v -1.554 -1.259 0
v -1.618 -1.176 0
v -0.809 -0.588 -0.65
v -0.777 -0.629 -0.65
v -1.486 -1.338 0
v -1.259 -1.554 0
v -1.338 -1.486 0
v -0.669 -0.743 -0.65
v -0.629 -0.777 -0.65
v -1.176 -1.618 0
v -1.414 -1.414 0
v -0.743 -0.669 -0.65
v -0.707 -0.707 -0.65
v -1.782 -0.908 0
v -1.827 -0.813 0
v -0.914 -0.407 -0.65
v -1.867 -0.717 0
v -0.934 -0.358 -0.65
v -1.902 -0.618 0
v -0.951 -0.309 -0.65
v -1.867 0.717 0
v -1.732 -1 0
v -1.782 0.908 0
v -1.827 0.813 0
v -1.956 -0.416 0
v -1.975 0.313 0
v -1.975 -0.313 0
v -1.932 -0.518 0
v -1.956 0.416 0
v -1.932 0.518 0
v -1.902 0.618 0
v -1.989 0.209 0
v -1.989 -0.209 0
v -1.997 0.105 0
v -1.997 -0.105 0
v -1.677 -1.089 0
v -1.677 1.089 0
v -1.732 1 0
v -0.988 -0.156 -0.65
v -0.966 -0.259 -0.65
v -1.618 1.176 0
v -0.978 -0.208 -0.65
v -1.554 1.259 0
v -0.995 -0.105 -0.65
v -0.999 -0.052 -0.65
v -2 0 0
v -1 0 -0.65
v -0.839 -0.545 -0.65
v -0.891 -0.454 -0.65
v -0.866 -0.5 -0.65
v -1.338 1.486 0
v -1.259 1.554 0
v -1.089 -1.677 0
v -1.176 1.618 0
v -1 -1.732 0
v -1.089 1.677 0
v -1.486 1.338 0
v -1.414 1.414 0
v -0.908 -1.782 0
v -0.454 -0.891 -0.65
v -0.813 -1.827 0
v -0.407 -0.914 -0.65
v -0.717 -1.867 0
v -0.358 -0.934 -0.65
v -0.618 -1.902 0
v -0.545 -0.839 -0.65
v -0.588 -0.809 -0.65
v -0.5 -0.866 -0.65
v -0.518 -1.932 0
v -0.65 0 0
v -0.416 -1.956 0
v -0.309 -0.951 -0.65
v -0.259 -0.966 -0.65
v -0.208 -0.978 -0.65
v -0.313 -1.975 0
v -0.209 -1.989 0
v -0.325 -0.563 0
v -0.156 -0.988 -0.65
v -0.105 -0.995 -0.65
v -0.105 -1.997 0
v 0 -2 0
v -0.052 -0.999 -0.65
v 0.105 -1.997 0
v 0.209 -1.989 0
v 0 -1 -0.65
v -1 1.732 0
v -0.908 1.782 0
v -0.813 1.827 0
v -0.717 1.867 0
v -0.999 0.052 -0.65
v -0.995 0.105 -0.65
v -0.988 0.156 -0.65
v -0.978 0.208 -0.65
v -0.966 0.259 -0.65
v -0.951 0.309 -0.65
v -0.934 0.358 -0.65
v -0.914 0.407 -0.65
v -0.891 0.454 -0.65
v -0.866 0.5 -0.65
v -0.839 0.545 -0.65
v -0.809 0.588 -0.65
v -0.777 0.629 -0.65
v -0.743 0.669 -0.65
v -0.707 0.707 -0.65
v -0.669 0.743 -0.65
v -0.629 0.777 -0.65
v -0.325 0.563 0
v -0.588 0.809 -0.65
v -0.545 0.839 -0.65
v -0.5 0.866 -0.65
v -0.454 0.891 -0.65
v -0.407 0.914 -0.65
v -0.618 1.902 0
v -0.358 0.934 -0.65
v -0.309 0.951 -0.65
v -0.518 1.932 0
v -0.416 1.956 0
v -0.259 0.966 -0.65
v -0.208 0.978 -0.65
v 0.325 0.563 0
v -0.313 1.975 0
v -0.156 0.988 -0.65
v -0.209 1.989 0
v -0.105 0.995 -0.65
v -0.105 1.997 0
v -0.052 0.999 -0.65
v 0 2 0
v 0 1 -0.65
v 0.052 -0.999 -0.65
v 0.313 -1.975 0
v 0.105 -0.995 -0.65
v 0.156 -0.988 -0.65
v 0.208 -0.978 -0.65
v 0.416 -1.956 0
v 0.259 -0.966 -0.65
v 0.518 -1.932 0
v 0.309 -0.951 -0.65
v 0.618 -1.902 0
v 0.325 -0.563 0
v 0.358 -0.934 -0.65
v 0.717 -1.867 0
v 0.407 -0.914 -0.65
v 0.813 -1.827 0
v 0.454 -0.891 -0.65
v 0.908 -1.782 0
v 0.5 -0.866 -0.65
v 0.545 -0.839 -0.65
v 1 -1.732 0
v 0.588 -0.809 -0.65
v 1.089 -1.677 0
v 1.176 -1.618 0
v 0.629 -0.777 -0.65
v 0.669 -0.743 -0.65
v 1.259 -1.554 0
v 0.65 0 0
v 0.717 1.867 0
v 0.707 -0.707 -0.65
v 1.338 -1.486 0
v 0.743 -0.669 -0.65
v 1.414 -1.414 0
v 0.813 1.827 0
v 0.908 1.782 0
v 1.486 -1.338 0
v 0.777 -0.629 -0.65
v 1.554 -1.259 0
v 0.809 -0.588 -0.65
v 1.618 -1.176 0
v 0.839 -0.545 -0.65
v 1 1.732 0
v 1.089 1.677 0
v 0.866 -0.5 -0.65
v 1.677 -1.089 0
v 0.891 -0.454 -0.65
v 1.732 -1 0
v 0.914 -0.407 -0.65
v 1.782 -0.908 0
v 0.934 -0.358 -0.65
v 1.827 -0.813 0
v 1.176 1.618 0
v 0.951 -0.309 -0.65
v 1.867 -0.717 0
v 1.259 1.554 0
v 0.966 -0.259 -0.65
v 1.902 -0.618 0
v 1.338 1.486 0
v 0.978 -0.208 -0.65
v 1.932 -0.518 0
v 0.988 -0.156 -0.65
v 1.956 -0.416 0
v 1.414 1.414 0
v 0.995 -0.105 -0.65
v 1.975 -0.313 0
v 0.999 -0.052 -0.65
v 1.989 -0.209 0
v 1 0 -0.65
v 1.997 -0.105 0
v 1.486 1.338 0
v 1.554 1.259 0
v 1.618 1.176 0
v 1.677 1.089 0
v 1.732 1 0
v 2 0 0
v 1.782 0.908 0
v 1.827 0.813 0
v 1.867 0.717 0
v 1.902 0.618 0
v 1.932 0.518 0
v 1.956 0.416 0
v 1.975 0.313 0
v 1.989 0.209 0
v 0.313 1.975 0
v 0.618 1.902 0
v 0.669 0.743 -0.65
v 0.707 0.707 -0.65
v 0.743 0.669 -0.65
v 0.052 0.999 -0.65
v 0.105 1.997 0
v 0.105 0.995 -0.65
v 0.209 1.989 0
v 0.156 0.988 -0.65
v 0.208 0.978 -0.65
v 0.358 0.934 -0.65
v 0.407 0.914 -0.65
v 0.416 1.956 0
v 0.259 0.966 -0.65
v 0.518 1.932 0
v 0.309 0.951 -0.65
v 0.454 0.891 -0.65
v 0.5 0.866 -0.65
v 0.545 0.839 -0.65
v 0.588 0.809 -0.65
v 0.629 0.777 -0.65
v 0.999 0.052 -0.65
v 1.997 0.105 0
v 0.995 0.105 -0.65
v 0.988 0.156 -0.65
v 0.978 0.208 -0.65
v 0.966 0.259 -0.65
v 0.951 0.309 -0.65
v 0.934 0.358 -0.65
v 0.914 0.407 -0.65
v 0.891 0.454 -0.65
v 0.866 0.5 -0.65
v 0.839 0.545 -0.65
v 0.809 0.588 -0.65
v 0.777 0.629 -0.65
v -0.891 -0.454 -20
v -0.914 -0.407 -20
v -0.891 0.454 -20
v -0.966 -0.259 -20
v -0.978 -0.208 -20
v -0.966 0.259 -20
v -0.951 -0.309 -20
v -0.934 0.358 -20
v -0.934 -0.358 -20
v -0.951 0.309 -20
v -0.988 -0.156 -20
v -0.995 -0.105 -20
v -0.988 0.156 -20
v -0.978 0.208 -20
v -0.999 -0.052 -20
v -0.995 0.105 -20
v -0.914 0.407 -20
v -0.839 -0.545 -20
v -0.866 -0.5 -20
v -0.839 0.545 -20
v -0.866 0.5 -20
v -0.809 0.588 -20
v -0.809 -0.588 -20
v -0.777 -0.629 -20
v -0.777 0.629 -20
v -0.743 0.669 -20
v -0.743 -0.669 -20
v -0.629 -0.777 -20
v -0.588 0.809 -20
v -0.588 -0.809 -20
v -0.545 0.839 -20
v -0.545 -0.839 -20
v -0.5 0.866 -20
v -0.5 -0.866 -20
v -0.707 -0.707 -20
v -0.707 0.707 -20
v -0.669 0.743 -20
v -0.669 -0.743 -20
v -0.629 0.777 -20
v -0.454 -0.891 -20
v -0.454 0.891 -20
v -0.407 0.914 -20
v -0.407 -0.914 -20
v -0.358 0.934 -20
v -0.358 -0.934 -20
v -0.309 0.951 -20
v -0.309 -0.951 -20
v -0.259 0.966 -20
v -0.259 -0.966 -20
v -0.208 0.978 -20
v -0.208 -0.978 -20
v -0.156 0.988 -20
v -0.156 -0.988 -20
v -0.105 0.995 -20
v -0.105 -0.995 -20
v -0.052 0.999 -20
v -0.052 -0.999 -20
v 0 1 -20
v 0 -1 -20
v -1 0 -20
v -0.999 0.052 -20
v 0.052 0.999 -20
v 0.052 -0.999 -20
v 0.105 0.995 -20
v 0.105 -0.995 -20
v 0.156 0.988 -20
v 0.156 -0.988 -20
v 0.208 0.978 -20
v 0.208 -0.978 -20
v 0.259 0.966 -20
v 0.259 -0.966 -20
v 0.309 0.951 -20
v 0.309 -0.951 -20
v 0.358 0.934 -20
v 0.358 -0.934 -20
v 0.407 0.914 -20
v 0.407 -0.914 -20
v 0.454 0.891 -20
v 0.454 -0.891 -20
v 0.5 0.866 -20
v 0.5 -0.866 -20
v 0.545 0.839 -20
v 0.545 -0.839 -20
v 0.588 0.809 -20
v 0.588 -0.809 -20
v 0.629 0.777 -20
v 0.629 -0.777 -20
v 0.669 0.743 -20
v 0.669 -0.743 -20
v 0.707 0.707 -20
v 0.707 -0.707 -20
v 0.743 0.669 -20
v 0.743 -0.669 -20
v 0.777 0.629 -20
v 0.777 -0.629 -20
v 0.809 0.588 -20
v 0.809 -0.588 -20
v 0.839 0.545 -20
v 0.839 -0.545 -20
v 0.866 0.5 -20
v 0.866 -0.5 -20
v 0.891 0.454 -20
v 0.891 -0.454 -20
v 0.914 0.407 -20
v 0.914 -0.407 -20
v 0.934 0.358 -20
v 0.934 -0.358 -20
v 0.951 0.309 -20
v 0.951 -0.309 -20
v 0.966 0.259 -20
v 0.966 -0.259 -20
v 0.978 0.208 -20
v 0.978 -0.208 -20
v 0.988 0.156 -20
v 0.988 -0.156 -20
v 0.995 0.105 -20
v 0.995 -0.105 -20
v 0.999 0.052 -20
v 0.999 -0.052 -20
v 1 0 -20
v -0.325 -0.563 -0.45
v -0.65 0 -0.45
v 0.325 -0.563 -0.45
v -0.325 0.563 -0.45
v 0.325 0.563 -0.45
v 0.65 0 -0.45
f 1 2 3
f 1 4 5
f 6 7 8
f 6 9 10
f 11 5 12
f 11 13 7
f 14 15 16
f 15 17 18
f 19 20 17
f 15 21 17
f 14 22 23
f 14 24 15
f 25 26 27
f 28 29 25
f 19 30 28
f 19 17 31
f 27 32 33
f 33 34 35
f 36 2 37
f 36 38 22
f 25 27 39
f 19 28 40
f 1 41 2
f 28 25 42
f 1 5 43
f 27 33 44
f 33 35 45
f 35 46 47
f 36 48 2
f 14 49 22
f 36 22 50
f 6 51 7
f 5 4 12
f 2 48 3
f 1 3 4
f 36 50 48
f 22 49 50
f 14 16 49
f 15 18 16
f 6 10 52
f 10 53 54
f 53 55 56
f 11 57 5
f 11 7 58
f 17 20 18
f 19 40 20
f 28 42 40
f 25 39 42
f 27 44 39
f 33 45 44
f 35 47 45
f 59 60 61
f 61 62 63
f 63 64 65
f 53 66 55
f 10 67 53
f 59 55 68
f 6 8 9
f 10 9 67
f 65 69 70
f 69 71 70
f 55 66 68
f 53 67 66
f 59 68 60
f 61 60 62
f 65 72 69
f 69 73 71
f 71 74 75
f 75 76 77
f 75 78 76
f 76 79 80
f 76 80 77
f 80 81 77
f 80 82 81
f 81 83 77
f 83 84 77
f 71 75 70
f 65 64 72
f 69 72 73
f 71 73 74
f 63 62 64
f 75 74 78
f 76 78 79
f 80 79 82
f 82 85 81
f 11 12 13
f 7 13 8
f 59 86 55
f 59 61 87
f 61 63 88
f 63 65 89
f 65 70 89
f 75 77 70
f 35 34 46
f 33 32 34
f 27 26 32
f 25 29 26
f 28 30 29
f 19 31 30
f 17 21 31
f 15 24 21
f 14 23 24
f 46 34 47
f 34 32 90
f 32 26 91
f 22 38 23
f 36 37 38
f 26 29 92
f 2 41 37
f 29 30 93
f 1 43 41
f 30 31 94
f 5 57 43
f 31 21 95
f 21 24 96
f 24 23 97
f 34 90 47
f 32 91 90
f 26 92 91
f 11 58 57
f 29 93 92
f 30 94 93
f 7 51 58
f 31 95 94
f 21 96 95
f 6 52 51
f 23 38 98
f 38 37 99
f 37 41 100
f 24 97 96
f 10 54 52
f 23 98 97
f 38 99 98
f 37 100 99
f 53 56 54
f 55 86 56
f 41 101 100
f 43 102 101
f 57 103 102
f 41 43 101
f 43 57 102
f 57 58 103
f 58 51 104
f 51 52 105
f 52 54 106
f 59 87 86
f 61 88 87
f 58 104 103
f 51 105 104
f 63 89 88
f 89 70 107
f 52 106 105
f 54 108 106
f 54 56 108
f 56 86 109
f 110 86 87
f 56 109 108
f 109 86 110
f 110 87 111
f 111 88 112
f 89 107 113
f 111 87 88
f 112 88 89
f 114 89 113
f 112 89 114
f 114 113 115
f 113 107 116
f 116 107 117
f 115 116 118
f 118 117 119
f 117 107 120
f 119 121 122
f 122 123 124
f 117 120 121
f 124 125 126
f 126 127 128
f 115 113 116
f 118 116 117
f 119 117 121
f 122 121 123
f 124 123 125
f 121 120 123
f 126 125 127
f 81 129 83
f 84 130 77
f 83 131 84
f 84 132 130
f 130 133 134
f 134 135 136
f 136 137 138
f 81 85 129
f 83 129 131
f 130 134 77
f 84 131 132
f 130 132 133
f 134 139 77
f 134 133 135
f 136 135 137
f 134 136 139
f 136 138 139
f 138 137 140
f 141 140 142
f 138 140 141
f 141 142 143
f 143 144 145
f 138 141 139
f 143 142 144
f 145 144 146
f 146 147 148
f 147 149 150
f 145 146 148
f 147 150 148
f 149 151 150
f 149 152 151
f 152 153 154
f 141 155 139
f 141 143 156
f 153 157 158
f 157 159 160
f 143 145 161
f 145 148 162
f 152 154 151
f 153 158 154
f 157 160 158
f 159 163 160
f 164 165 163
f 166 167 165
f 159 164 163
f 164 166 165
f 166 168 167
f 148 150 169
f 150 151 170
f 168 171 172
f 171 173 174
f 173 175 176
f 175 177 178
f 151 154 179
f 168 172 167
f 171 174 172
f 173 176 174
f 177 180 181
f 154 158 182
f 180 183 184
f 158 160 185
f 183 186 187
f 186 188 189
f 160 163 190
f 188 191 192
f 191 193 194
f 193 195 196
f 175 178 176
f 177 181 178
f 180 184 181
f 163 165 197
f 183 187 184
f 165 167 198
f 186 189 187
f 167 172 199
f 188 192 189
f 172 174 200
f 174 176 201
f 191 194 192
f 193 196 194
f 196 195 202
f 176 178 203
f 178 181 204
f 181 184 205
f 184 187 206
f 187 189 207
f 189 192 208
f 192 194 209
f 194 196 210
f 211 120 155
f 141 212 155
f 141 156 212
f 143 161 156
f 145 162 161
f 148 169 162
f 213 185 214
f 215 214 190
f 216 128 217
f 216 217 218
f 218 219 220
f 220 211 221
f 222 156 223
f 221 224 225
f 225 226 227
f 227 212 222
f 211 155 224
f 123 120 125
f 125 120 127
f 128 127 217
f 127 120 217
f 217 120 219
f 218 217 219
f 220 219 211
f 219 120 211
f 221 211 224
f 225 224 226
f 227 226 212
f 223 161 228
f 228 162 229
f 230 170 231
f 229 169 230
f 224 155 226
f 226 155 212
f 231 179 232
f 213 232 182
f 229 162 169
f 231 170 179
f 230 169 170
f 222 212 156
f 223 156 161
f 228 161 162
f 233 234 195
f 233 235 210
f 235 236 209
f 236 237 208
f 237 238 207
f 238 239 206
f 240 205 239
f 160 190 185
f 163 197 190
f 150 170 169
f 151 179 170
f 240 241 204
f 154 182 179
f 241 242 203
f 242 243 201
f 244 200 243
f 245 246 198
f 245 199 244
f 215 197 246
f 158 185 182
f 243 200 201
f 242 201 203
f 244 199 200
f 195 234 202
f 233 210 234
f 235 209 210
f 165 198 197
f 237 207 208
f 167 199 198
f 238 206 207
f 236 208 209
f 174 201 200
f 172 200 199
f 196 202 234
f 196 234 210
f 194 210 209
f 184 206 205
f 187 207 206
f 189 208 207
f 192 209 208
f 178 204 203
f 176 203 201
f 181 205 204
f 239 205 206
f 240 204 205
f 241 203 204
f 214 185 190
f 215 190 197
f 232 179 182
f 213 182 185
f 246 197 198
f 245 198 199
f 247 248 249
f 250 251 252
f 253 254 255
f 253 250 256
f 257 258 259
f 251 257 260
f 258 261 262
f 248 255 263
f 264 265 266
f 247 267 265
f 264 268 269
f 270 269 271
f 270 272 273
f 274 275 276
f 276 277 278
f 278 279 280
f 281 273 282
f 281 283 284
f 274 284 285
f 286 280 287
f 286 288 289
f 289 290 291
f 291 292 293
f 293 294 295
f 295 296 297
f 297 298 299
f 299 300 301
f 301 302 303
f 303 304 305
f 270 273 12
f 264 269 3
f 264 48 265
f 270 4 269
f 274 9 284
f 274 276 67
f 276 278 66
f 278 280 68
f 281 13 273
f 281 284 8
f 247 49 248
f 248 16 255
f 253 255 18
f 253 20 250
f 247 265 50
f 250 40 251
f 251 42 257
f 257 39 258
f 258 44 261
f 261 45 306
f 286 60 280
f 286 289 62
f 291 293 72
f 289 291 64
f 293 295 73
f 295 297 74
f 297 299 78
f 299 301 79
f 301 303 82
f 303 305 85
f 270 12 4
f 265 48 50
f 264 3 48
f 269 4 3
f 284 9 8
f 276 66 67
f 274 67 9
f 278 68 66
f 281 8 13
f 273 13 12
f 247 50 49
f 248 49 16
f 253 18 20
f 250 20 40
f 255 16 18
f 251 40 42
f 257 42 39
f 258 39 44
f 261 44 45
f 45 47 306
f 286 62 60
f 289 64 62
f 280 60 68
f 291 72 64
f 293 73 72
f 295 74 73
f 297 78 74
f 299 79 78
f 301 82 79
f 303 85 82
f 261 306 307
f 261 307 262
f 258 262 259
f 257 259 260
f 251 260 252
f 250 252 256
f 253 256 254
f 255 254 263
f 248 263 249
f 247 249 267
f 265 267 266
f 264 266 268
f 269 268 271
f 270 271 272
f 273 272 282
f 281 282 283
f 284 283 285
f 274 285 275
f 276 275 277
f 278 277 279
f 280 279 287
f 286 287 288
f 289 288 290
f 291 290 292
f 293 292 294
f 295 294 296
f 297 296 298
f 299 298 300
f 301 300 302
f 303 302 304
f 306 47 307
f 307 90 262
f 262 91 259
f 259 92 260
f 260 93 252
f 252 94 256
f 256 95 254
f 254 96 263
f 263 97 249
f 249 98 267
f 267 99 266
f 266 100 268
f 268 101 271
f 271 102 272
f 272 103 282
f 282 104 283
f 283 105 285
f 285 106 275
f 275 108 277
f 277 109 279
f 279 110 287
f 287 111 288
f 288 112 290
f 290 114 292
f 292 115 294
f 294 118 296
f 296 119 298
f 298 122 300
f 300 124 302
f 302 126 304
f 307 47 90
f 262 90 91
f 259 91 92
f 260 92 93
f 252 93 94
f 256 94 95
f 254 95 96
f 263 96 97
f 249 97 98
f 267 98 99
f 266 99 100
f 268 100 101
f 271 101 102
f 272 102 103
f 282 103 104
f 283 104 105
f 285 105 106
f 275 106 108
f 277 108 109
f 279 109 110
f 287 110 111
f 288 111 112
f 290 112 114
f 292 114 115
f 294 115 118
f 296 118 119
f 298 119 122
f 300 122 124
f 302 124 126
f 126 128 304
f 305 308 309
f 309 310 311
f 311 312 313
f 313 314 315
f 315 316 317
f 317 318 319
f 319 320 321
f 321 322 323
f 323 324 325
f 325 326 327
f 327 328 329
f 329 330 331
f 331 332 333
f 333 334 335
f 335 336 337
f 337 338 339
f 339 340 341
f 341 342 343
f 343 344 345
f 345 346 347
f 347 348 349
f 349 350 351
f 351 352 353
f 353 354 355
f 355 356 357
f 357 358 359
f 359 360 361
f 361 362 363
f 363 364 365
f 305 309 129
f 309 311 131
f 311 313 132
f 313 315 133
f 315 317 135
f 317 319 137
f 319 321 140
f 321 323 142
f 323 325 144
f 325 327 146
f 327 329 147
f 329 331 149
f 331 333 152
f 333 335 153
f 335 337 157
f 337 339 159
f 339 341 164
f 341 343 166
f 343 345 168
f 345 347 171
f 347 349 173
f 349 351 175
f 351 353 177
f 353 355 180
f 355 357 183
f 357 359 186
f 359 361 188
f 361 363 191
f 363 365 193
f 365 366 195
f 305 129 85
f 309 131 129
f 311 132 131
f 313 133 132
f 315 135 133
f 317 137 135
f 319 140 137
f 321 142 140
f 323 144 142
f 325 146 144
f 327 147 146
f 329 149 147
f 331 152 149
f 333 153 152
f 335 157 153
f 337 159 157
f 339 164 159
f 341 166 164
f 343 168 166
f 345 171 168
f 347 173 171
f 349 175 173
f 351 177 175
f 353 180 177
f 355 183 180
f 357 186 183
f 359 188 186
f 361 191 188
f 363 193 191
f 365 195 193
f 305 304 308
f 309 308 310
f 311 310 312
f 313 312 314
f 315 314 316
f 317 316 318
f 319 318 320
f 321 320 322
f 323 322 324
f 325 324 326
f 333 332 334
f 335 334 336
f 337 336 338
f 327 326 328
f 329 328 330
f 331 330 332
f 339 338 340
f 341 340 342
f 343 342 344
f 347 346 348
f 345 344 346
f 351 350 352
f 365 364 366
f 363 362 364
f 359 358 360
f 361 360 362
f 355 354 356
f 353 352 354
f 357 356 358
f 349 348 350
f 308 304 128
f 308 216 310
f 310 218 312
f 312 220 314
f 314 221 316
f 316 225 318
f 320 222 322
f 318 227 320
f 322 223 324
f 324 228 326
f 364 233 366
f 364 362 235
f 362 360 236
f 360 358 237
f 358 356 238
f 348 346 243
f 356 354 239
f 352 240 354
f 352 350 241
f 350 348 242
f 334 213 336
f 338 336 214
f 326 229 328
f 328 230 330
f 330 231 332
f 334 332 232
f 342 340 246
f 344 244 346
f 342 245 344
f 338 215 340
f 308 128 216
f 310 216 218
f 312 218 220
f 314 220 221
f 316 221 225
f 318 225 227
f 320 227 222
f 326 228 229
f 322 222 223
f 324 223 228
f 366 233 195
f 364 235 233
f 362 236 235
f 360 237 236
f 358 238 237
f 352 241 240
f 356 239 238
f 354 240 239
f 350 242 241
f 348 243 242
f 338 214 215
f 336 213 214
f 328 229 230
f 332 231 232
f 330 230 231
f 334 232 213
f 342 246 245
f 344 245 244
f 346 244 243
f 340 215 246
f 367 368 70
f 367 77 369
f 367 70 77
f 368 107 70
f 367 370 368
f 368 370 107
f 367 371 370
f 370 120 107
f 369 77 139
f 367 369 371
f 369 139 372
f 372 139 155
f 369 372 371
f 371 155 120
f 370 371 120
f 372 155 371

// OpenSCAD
// file: C:/gh/oomlout_oobb_part_motor_gearbox_wave_drive_version_5/parts/oobb_part_motor_gearbox_wave_drive_version_5_12_to_1_reduction/compact_helpers.scad
// Reusable native geometry helpers.
function polar(r,a)=[r*cos(a),r*sin(a)];
function rotate_point(p,a)=[p[0]*cos(a)-p[1]*sin(a),p[0]*sin(a)+p[1]*cos(a)];
function profile_point(t)=let(
    s=sqrt(pow(pitch_radius,2)-pow(eccentricity*sin(cavity_count*t),2)),
    r=eccentricity*cos(cavity_count*t)+s,
    xi=atan2(eccentricity*cavity_count*sin(cavity_count*t),s),
    rr=roller_radius+profile_clearance)
    [r*cos(t)+rr*cos(t+xi),r*sin(t)+rr*sin(t+xi)];
function profile_points(upper=false)=[for(i=[0:cavity_count*profile_samples_per_cavity-1])
    rotate_point(profile_point(360*i/(cavity_count*profile_samples_per_cavity)),0)];
function roller_position(i,a,upper=false)=let(
    t=-a/roller_count+360*i/roller_count,
    rel=t-a-(upper?180:0),
    r=eccentricity*cos(rel)+sqrt(pow(pitch_radius,2)-pow(eccentricity*sin(rel),2))) polar(r,t);
module tube(ro,ri,h) { difference() { cylinder(r=ro,h=h); translate([0,0,-eps]) cylinder(r=ri,h=h+2*eps); } }
module screw_hole(size,h) { scale([1,1,h]) { if(size=="m2") oobb_hole_m2(); if(size=="m3") oobb_hole_m3(); if(size=="m6") oobb_hole_m6(); } }
module socket_recess(size,depth) {
    // OOBB socket head starts at the under-head plane and extends outward.
    scale([1,1,depth/(size=="m3"?3.2:2.2)]) {
        if(size=="m3") oobb_socket_m3(); else oobb_socket_m2();
    }
}
module at_mounts(points) { for(p=points) translate([p[0],p[1],0]) children(); }
module shaft_cut(h,fit=shaft_fit_clearance) {
    linear_extrude(h) intersection() {
        circle(r=input_shaft_diameter/2+fit);
        translate([-10,-10]) square([10+input_shaft_diameter/2-input_shaft_flat_depth+fit,20]);
    }
}
module rounded_rectangle_plate(size=[119,119,3],radius=1.5) {
    hull() for(x=[-1,1],y=[-1,1]) translate([x*(size[0]/2-radius),y*(size[1]/2-radius),0]) cylinder(r=radius,h=size[2]);
}
module grid_cuts(h) {
    // Actual OOBB grid centres: six units are centred on half-pitch offsets.
    for(i=[0:base_width-1],j=[0:base_height-1])
        let(x=(i-(base_width-1)/2)*oobb_grid_pitch,y=(j-(base_height-1)/2)*oobb_grid_pitch)
        if(sqrt(x*x+y*y)>housing_radius+3.5)
            translate([x,y,-eps]) screw_hole("m6",h+2*eps);
}
module wave_generator() {
    render(convexity=20) difference() {
        tube(wave_radius,12.6,wave_height);
        translate([0,0,wave_seat_z]) cylinder(r=13.5+bearing_seat_clearance,h=wave_height);
        translate([0,0,wave_height-wave_cap_depth]) cylinder(r=22.15,h=wave_cap_depth+eps);
        at_mounts(wave_mounts) {
            translate([0,0,-eps]) screw_hole("m3",wave_height+2*eps);
            translate([0,0,wave_nut_z]) scale([1,1,(wave_height-wave_cap_depth-wave_nut_z+eps)/2.7]) oobb_nut_m3();
        }
    }
}
module wave_cap() {
    render(convexity=20) difference() {
        tube(22,12.6,wave_cap_depth);
        at_mounts(wave_mounts) {
            translate([0,0,-eps]) screw_hole("m3",wave_cap_depth+2*eps);
            translate([0,0,wave_cap_depth-wave_head_recess]) socket_recess("m3",wave_head_recess+eps);
        }
    }
}
// file: C:/gh/oomlout_oobb_part_motor_gearbox_wave_drive_version_5/parts/oobb_part_motor_gearbox_wave_drive_version_5_12_to_1_reduction/oobb_hardware.scad
module oobb_rounded_rectangle_edges(size, radius, radius_top, radius_bottom) {
      rt=radius_top; rb=radius_bottom; depth=size[2]; n=16;
      lower=rb==0 ? [[radius,0]] :
        [for(i=[0:n]) let(a=-90+90*i/n) [radius-rb+rb*cos(a),rb+rb*sin(a)]];
      upper=rt==0 ? [[radius,depth]] :
        [for(i=[0:n]) let(a=90*i/n) [radius-rt+rt*cos(a),depth-rt+rt*sin(a)]];
      hull() for(x=[-size[0]/2+radius,size[0]/2-radius])
        for(y=[-size[1]/2+radius,size[1]/2-radius])
          translate([x,y,0]) rotate_extrude()
            polygon(concat([[0,0]],lower,upper,[[0,depth]]));
    }
// Generated from installed OOBB v5. All primitives use overhang=True.

module oobb_motor_plate_body() {


difference() {
	union() {
		translate(v = [0, 0, 0]) {
			rotate(a = [0, 0, 0]) {
				difference() {
					union() {
						oobb_rounded_rectangle_edges(radius = 1.5, radius_bottom = 1.5, radius_top = 1.5, size = [89.0, 89.0, 4.0]);
					}
					union();
				}
			}
		}
	}
	union();
}

}

module oobb_hole_m2() {


difference() {
	union() {
		cylinder(h = 1, r = 1.35);
	}
	union();
}

}

module oobb_hole_m3() {


difference() {
	union() {
		cylinder(h = 1, r = 1.8);
	}
	union();
}

}

module oobb_hole_m6() {


difference() {
	union() {
		cylinder(h = 1, r = 3.25);
	}
	union();
}

}

module oobb_nut_m2() {


difference() {
	union() {
		translate(v = [0, 0, 0]) {
			rotate(a = [0, 0, 0]) {
				difference() {
					union() {
						linear_extrude(height = 2.2) {
							polygon(points = [[2.4234, 0.0], [1.2117000000000002, 2.0987259635312085], [-1.2116999999999996, 2.0987259635312085], [-2.4234, 2.967809053053696e-16], [-1.211700000000001, -2.098725963531208], [1.2116999999999984, -2.0987259635312094]]);
						}
						translate(v = [-1.25, -2.75, -0.3]) {
							cube(size = [2.5, 5.5, 0.3]);
						}
						translate(v = [-1.25, -1.25, -0.6]) {
							cube(size = [2.5, 2.5, 0.3]);
						}
						translate(v = [-1.25, -2.75, 2.2]) {
							cube(size = [2.5, 5.5, 0.3]);
						}
						translate(v = [-1.25, -1.25, 2.5]) {
							cube(size = [2.5, 2.5, 0.3]);
						}
					}
					union();
				}
			}
		}
	}
	union();
}

}

module oobb_socket_m2() {


difference() {
	union() {
		translate(v = [0, 0, 0]) {
			rotate(a = [0, 0, 0]) {
				difference() {
					union() {
						cylinder(h = 2.2, r = 2.1);
						translate(v = [-1.25, -2.75, -0.3]) {
							cube(size = [2.5, 5.5, 0.3]);
						}
						translate(v = [-1.25, -1.25, -0.6]) {
							cube(size = [2.5, 2.5, 0.3]);
						}
					}
					union();
				}
			}
		}
	}
	union();
}

}

module oobb_nut_m3() {


difference() {
	union() {
		translate(v = [0, 0, 0]) {
			rotate(a = [0, 0, 0]) {
				difference() {
					union() {
						linear_extrude(height = 2.7) {
							polygon(points = [[3.4619999999999997, 0.0], [1.7310000000000003, 2.9981799479017264], [-1.7309999999999992, 2.9981799479017264], [-3.4619999999999997, 4.2397272186481365e-16], [-1.7310000000000014, -2.998179947901726], [1.7309999999999977, -2.9981799479017277]]);
						}
						translate(v = [-1.75, -3.25, -0.3]) {
							cube(size = [3.5, 6.5, 0.3]);
						}
						translate(v = [-1.75, -1.75, -0.6]) {
							cube(size = [3.5, 3.5, 0.3]);
						}
						translate(v = [-1.75, -3.25, 2.7]) {
							cube(size = [3.5, 6.5, 0.3]);
						}
						translate(v = [-1.75, -1.75, 3.0]) {
							cube(size = [3.5, 3.5, 0.3]);
						}
					}
					union();
				}
			}
		}
	}
	union();
}

}

module oobb_socket_m3() {


difference() {
	union() {
		translate(v = [0, 0, 0]) {
			rotate(a = [0, 0, 0]) {
				difference() {
					union() {
						cylinder(h = 3.2, r = 3.0);
						translate(v = [-1.75, -3.25, -0.3]) {
							cube(size = [3.5, 6.5, 0.3]);
						}
						translate(v = [-1.75, -1.75, -0.6]) {
							cube(size = [3.5, 3.5, 0.3]);
						}
					}
					union();
				}
			}
		}
	}
	union();
}

}

module oobb_nut_m6() {


difference() {
	union() {
		translate(v = [0, 0, 0]) {
			rotate(a = [0, 0, 0]) {
				difference() {
					union() {
						linear_extrude(height = 5.2) {
							polygon(points = [[5.914249999999999, 0.0], [2.957125, 5.1218907443321156], [-2.9571249999999982, 5.1218907443321156], [-5.914249999999999, 7.242867331857232e-16], [-2.9571250000000022, -5.121890744332115], [2.9571249999999956, -5.121890744332118]]);
						}
						translate(v = [-2.875, -5.0, -0.3]) {
							cube(size = [5.75, 10, 0.3]);
						}
						translate(v = [-2.875, -2.875, -0.6]) {
							cube(size = [5.75, 5.75, 0.3]);
						}
						translate(v = [-2.875, -5.0, 5.2]) {
							cube(size = [5.75, 10, 0.3]);
						}
						translate(v = [-2.875, -2.875, 5.5]) {
							cube(size = [5.75, 5.75, 0.3]);
						}
					}
					union();
				}
			}
		}
	}
	union();
}

}
// file: C:/gh/oomlout_oobb_part_motor_gearbox_wave_drive_version_5/parts/oobb_part_motor_gearbox_wave_drive_version_5_12_to_1_reduction/parameters.scad
// Generated by working_scad.py. Edit the Python recipe to persist changes.
style = "version_5";
reduction = 12;
bearing_output = "6810";
bearing_wave = "6704";
roller_diameter = 7.0;
roller_bore_diameter = 3.2;
roller_length = 12.0;
roller_material = "nylon";
roller_bank_count = 1;
motor_plate_depth = 4.0;
motor_body_depth = 40.0;
motor_shaft_length = 24.0;
motor_hole_pitch = 31.0;
motor_thread_depth = 6.0;
motor_pilot_diameter = 22.0;
motor_pilot_height = 2.0;
output_holder_wall = 7.0;
max_screw_length = 35.0;
eccentricity = 0.75;
wave_radius = 23.25;
profile_clearance = 0.15;
roller_slot_clearance = 0.3;
roller_end_clearance = 0.3;
cage_wall = 4.0;
cage_plate_depth = 3.0;
bearing_seat_clearance = 0.1;
journal_clearance = 0.05;
bearing_axial_clearance = 0.2;
output_plate_diameter = 65.0;
output_plate_depth = 6.0;
output_grid_pitch = 15.0;
output_face_clearance = 0.3;
output_socket_recess = 4.0;
output_screw_length = 16;
output_nut_depth = 5.2;
output_nut_height = 5.0;
motor_shaft_end_clearance = 0.5;
base_width = 6;
base_height = 6;
oobb_grid_pitch = 15.0;
oobb_size_allowance = 1.0;
base_edge_radius = 1.5;
housing_flange_corner_radius = 1.5;
housing_screw_pitch_radius = 35.5;
housing_screw_count = 6;
input_shaft_diameter = 5.0;
input_shaft_flat_depth = 0.5;
shaft_fit_clearance = 0.1;
cage_screw_count = 4;
profile_samples_per_cavity = 100;
circle_fragments = 120;
overhang = true;
run_scad = true;
run_solidcraft = false;
generate_stl = true;
generate_previews = true;
generate_renders = true;
validate_geometry = true;
package_outputs = true;
render_threads = 8;
variant = "default";
// main file
include <C:/gh/oomlout_oobb_part_motor_gearbox_wave_drive_version_5/parts/oobb_part_motor_gearbox_wave_drive_version_5_12_to_1_reduction/parameters.scad>
include <C:/gh/oomlout_oobb_part_motor_gearbox_wave_drive_version_5/parts/oobb_part_motor_gearbox_wave_drive_version_5_12_to_1_reduction/oobb_hardware.scad>
include <C:/gh/oomlout_oobb_part_motor_gearbox_wave_drive_version_5/parts/oobb_part_motor_gearbox_wave_drive_version_5_12_to_1_reduction/geometry.scad>
difference() { 

difference() {
	union() {
		translate(v = [0, 0, 0]) {
			rotate(a = [0, 0, 0]) {
				difference() {
					union() {
						translate(v = [0, 0, -0.65]) {
							cylinder(h = 0.65, r1 = 1.0, r2 = 2.0);
						}
						translate(v = [0, 0, -20.0]) {
							cylinder(h = 20, r = 1.0);
						}
					}
					union();
				}
			}
		}
	}
	union();
}
 translate([0,0,-0.45]) cylinder(r=0.65,h=0.46,$fn=6); }
